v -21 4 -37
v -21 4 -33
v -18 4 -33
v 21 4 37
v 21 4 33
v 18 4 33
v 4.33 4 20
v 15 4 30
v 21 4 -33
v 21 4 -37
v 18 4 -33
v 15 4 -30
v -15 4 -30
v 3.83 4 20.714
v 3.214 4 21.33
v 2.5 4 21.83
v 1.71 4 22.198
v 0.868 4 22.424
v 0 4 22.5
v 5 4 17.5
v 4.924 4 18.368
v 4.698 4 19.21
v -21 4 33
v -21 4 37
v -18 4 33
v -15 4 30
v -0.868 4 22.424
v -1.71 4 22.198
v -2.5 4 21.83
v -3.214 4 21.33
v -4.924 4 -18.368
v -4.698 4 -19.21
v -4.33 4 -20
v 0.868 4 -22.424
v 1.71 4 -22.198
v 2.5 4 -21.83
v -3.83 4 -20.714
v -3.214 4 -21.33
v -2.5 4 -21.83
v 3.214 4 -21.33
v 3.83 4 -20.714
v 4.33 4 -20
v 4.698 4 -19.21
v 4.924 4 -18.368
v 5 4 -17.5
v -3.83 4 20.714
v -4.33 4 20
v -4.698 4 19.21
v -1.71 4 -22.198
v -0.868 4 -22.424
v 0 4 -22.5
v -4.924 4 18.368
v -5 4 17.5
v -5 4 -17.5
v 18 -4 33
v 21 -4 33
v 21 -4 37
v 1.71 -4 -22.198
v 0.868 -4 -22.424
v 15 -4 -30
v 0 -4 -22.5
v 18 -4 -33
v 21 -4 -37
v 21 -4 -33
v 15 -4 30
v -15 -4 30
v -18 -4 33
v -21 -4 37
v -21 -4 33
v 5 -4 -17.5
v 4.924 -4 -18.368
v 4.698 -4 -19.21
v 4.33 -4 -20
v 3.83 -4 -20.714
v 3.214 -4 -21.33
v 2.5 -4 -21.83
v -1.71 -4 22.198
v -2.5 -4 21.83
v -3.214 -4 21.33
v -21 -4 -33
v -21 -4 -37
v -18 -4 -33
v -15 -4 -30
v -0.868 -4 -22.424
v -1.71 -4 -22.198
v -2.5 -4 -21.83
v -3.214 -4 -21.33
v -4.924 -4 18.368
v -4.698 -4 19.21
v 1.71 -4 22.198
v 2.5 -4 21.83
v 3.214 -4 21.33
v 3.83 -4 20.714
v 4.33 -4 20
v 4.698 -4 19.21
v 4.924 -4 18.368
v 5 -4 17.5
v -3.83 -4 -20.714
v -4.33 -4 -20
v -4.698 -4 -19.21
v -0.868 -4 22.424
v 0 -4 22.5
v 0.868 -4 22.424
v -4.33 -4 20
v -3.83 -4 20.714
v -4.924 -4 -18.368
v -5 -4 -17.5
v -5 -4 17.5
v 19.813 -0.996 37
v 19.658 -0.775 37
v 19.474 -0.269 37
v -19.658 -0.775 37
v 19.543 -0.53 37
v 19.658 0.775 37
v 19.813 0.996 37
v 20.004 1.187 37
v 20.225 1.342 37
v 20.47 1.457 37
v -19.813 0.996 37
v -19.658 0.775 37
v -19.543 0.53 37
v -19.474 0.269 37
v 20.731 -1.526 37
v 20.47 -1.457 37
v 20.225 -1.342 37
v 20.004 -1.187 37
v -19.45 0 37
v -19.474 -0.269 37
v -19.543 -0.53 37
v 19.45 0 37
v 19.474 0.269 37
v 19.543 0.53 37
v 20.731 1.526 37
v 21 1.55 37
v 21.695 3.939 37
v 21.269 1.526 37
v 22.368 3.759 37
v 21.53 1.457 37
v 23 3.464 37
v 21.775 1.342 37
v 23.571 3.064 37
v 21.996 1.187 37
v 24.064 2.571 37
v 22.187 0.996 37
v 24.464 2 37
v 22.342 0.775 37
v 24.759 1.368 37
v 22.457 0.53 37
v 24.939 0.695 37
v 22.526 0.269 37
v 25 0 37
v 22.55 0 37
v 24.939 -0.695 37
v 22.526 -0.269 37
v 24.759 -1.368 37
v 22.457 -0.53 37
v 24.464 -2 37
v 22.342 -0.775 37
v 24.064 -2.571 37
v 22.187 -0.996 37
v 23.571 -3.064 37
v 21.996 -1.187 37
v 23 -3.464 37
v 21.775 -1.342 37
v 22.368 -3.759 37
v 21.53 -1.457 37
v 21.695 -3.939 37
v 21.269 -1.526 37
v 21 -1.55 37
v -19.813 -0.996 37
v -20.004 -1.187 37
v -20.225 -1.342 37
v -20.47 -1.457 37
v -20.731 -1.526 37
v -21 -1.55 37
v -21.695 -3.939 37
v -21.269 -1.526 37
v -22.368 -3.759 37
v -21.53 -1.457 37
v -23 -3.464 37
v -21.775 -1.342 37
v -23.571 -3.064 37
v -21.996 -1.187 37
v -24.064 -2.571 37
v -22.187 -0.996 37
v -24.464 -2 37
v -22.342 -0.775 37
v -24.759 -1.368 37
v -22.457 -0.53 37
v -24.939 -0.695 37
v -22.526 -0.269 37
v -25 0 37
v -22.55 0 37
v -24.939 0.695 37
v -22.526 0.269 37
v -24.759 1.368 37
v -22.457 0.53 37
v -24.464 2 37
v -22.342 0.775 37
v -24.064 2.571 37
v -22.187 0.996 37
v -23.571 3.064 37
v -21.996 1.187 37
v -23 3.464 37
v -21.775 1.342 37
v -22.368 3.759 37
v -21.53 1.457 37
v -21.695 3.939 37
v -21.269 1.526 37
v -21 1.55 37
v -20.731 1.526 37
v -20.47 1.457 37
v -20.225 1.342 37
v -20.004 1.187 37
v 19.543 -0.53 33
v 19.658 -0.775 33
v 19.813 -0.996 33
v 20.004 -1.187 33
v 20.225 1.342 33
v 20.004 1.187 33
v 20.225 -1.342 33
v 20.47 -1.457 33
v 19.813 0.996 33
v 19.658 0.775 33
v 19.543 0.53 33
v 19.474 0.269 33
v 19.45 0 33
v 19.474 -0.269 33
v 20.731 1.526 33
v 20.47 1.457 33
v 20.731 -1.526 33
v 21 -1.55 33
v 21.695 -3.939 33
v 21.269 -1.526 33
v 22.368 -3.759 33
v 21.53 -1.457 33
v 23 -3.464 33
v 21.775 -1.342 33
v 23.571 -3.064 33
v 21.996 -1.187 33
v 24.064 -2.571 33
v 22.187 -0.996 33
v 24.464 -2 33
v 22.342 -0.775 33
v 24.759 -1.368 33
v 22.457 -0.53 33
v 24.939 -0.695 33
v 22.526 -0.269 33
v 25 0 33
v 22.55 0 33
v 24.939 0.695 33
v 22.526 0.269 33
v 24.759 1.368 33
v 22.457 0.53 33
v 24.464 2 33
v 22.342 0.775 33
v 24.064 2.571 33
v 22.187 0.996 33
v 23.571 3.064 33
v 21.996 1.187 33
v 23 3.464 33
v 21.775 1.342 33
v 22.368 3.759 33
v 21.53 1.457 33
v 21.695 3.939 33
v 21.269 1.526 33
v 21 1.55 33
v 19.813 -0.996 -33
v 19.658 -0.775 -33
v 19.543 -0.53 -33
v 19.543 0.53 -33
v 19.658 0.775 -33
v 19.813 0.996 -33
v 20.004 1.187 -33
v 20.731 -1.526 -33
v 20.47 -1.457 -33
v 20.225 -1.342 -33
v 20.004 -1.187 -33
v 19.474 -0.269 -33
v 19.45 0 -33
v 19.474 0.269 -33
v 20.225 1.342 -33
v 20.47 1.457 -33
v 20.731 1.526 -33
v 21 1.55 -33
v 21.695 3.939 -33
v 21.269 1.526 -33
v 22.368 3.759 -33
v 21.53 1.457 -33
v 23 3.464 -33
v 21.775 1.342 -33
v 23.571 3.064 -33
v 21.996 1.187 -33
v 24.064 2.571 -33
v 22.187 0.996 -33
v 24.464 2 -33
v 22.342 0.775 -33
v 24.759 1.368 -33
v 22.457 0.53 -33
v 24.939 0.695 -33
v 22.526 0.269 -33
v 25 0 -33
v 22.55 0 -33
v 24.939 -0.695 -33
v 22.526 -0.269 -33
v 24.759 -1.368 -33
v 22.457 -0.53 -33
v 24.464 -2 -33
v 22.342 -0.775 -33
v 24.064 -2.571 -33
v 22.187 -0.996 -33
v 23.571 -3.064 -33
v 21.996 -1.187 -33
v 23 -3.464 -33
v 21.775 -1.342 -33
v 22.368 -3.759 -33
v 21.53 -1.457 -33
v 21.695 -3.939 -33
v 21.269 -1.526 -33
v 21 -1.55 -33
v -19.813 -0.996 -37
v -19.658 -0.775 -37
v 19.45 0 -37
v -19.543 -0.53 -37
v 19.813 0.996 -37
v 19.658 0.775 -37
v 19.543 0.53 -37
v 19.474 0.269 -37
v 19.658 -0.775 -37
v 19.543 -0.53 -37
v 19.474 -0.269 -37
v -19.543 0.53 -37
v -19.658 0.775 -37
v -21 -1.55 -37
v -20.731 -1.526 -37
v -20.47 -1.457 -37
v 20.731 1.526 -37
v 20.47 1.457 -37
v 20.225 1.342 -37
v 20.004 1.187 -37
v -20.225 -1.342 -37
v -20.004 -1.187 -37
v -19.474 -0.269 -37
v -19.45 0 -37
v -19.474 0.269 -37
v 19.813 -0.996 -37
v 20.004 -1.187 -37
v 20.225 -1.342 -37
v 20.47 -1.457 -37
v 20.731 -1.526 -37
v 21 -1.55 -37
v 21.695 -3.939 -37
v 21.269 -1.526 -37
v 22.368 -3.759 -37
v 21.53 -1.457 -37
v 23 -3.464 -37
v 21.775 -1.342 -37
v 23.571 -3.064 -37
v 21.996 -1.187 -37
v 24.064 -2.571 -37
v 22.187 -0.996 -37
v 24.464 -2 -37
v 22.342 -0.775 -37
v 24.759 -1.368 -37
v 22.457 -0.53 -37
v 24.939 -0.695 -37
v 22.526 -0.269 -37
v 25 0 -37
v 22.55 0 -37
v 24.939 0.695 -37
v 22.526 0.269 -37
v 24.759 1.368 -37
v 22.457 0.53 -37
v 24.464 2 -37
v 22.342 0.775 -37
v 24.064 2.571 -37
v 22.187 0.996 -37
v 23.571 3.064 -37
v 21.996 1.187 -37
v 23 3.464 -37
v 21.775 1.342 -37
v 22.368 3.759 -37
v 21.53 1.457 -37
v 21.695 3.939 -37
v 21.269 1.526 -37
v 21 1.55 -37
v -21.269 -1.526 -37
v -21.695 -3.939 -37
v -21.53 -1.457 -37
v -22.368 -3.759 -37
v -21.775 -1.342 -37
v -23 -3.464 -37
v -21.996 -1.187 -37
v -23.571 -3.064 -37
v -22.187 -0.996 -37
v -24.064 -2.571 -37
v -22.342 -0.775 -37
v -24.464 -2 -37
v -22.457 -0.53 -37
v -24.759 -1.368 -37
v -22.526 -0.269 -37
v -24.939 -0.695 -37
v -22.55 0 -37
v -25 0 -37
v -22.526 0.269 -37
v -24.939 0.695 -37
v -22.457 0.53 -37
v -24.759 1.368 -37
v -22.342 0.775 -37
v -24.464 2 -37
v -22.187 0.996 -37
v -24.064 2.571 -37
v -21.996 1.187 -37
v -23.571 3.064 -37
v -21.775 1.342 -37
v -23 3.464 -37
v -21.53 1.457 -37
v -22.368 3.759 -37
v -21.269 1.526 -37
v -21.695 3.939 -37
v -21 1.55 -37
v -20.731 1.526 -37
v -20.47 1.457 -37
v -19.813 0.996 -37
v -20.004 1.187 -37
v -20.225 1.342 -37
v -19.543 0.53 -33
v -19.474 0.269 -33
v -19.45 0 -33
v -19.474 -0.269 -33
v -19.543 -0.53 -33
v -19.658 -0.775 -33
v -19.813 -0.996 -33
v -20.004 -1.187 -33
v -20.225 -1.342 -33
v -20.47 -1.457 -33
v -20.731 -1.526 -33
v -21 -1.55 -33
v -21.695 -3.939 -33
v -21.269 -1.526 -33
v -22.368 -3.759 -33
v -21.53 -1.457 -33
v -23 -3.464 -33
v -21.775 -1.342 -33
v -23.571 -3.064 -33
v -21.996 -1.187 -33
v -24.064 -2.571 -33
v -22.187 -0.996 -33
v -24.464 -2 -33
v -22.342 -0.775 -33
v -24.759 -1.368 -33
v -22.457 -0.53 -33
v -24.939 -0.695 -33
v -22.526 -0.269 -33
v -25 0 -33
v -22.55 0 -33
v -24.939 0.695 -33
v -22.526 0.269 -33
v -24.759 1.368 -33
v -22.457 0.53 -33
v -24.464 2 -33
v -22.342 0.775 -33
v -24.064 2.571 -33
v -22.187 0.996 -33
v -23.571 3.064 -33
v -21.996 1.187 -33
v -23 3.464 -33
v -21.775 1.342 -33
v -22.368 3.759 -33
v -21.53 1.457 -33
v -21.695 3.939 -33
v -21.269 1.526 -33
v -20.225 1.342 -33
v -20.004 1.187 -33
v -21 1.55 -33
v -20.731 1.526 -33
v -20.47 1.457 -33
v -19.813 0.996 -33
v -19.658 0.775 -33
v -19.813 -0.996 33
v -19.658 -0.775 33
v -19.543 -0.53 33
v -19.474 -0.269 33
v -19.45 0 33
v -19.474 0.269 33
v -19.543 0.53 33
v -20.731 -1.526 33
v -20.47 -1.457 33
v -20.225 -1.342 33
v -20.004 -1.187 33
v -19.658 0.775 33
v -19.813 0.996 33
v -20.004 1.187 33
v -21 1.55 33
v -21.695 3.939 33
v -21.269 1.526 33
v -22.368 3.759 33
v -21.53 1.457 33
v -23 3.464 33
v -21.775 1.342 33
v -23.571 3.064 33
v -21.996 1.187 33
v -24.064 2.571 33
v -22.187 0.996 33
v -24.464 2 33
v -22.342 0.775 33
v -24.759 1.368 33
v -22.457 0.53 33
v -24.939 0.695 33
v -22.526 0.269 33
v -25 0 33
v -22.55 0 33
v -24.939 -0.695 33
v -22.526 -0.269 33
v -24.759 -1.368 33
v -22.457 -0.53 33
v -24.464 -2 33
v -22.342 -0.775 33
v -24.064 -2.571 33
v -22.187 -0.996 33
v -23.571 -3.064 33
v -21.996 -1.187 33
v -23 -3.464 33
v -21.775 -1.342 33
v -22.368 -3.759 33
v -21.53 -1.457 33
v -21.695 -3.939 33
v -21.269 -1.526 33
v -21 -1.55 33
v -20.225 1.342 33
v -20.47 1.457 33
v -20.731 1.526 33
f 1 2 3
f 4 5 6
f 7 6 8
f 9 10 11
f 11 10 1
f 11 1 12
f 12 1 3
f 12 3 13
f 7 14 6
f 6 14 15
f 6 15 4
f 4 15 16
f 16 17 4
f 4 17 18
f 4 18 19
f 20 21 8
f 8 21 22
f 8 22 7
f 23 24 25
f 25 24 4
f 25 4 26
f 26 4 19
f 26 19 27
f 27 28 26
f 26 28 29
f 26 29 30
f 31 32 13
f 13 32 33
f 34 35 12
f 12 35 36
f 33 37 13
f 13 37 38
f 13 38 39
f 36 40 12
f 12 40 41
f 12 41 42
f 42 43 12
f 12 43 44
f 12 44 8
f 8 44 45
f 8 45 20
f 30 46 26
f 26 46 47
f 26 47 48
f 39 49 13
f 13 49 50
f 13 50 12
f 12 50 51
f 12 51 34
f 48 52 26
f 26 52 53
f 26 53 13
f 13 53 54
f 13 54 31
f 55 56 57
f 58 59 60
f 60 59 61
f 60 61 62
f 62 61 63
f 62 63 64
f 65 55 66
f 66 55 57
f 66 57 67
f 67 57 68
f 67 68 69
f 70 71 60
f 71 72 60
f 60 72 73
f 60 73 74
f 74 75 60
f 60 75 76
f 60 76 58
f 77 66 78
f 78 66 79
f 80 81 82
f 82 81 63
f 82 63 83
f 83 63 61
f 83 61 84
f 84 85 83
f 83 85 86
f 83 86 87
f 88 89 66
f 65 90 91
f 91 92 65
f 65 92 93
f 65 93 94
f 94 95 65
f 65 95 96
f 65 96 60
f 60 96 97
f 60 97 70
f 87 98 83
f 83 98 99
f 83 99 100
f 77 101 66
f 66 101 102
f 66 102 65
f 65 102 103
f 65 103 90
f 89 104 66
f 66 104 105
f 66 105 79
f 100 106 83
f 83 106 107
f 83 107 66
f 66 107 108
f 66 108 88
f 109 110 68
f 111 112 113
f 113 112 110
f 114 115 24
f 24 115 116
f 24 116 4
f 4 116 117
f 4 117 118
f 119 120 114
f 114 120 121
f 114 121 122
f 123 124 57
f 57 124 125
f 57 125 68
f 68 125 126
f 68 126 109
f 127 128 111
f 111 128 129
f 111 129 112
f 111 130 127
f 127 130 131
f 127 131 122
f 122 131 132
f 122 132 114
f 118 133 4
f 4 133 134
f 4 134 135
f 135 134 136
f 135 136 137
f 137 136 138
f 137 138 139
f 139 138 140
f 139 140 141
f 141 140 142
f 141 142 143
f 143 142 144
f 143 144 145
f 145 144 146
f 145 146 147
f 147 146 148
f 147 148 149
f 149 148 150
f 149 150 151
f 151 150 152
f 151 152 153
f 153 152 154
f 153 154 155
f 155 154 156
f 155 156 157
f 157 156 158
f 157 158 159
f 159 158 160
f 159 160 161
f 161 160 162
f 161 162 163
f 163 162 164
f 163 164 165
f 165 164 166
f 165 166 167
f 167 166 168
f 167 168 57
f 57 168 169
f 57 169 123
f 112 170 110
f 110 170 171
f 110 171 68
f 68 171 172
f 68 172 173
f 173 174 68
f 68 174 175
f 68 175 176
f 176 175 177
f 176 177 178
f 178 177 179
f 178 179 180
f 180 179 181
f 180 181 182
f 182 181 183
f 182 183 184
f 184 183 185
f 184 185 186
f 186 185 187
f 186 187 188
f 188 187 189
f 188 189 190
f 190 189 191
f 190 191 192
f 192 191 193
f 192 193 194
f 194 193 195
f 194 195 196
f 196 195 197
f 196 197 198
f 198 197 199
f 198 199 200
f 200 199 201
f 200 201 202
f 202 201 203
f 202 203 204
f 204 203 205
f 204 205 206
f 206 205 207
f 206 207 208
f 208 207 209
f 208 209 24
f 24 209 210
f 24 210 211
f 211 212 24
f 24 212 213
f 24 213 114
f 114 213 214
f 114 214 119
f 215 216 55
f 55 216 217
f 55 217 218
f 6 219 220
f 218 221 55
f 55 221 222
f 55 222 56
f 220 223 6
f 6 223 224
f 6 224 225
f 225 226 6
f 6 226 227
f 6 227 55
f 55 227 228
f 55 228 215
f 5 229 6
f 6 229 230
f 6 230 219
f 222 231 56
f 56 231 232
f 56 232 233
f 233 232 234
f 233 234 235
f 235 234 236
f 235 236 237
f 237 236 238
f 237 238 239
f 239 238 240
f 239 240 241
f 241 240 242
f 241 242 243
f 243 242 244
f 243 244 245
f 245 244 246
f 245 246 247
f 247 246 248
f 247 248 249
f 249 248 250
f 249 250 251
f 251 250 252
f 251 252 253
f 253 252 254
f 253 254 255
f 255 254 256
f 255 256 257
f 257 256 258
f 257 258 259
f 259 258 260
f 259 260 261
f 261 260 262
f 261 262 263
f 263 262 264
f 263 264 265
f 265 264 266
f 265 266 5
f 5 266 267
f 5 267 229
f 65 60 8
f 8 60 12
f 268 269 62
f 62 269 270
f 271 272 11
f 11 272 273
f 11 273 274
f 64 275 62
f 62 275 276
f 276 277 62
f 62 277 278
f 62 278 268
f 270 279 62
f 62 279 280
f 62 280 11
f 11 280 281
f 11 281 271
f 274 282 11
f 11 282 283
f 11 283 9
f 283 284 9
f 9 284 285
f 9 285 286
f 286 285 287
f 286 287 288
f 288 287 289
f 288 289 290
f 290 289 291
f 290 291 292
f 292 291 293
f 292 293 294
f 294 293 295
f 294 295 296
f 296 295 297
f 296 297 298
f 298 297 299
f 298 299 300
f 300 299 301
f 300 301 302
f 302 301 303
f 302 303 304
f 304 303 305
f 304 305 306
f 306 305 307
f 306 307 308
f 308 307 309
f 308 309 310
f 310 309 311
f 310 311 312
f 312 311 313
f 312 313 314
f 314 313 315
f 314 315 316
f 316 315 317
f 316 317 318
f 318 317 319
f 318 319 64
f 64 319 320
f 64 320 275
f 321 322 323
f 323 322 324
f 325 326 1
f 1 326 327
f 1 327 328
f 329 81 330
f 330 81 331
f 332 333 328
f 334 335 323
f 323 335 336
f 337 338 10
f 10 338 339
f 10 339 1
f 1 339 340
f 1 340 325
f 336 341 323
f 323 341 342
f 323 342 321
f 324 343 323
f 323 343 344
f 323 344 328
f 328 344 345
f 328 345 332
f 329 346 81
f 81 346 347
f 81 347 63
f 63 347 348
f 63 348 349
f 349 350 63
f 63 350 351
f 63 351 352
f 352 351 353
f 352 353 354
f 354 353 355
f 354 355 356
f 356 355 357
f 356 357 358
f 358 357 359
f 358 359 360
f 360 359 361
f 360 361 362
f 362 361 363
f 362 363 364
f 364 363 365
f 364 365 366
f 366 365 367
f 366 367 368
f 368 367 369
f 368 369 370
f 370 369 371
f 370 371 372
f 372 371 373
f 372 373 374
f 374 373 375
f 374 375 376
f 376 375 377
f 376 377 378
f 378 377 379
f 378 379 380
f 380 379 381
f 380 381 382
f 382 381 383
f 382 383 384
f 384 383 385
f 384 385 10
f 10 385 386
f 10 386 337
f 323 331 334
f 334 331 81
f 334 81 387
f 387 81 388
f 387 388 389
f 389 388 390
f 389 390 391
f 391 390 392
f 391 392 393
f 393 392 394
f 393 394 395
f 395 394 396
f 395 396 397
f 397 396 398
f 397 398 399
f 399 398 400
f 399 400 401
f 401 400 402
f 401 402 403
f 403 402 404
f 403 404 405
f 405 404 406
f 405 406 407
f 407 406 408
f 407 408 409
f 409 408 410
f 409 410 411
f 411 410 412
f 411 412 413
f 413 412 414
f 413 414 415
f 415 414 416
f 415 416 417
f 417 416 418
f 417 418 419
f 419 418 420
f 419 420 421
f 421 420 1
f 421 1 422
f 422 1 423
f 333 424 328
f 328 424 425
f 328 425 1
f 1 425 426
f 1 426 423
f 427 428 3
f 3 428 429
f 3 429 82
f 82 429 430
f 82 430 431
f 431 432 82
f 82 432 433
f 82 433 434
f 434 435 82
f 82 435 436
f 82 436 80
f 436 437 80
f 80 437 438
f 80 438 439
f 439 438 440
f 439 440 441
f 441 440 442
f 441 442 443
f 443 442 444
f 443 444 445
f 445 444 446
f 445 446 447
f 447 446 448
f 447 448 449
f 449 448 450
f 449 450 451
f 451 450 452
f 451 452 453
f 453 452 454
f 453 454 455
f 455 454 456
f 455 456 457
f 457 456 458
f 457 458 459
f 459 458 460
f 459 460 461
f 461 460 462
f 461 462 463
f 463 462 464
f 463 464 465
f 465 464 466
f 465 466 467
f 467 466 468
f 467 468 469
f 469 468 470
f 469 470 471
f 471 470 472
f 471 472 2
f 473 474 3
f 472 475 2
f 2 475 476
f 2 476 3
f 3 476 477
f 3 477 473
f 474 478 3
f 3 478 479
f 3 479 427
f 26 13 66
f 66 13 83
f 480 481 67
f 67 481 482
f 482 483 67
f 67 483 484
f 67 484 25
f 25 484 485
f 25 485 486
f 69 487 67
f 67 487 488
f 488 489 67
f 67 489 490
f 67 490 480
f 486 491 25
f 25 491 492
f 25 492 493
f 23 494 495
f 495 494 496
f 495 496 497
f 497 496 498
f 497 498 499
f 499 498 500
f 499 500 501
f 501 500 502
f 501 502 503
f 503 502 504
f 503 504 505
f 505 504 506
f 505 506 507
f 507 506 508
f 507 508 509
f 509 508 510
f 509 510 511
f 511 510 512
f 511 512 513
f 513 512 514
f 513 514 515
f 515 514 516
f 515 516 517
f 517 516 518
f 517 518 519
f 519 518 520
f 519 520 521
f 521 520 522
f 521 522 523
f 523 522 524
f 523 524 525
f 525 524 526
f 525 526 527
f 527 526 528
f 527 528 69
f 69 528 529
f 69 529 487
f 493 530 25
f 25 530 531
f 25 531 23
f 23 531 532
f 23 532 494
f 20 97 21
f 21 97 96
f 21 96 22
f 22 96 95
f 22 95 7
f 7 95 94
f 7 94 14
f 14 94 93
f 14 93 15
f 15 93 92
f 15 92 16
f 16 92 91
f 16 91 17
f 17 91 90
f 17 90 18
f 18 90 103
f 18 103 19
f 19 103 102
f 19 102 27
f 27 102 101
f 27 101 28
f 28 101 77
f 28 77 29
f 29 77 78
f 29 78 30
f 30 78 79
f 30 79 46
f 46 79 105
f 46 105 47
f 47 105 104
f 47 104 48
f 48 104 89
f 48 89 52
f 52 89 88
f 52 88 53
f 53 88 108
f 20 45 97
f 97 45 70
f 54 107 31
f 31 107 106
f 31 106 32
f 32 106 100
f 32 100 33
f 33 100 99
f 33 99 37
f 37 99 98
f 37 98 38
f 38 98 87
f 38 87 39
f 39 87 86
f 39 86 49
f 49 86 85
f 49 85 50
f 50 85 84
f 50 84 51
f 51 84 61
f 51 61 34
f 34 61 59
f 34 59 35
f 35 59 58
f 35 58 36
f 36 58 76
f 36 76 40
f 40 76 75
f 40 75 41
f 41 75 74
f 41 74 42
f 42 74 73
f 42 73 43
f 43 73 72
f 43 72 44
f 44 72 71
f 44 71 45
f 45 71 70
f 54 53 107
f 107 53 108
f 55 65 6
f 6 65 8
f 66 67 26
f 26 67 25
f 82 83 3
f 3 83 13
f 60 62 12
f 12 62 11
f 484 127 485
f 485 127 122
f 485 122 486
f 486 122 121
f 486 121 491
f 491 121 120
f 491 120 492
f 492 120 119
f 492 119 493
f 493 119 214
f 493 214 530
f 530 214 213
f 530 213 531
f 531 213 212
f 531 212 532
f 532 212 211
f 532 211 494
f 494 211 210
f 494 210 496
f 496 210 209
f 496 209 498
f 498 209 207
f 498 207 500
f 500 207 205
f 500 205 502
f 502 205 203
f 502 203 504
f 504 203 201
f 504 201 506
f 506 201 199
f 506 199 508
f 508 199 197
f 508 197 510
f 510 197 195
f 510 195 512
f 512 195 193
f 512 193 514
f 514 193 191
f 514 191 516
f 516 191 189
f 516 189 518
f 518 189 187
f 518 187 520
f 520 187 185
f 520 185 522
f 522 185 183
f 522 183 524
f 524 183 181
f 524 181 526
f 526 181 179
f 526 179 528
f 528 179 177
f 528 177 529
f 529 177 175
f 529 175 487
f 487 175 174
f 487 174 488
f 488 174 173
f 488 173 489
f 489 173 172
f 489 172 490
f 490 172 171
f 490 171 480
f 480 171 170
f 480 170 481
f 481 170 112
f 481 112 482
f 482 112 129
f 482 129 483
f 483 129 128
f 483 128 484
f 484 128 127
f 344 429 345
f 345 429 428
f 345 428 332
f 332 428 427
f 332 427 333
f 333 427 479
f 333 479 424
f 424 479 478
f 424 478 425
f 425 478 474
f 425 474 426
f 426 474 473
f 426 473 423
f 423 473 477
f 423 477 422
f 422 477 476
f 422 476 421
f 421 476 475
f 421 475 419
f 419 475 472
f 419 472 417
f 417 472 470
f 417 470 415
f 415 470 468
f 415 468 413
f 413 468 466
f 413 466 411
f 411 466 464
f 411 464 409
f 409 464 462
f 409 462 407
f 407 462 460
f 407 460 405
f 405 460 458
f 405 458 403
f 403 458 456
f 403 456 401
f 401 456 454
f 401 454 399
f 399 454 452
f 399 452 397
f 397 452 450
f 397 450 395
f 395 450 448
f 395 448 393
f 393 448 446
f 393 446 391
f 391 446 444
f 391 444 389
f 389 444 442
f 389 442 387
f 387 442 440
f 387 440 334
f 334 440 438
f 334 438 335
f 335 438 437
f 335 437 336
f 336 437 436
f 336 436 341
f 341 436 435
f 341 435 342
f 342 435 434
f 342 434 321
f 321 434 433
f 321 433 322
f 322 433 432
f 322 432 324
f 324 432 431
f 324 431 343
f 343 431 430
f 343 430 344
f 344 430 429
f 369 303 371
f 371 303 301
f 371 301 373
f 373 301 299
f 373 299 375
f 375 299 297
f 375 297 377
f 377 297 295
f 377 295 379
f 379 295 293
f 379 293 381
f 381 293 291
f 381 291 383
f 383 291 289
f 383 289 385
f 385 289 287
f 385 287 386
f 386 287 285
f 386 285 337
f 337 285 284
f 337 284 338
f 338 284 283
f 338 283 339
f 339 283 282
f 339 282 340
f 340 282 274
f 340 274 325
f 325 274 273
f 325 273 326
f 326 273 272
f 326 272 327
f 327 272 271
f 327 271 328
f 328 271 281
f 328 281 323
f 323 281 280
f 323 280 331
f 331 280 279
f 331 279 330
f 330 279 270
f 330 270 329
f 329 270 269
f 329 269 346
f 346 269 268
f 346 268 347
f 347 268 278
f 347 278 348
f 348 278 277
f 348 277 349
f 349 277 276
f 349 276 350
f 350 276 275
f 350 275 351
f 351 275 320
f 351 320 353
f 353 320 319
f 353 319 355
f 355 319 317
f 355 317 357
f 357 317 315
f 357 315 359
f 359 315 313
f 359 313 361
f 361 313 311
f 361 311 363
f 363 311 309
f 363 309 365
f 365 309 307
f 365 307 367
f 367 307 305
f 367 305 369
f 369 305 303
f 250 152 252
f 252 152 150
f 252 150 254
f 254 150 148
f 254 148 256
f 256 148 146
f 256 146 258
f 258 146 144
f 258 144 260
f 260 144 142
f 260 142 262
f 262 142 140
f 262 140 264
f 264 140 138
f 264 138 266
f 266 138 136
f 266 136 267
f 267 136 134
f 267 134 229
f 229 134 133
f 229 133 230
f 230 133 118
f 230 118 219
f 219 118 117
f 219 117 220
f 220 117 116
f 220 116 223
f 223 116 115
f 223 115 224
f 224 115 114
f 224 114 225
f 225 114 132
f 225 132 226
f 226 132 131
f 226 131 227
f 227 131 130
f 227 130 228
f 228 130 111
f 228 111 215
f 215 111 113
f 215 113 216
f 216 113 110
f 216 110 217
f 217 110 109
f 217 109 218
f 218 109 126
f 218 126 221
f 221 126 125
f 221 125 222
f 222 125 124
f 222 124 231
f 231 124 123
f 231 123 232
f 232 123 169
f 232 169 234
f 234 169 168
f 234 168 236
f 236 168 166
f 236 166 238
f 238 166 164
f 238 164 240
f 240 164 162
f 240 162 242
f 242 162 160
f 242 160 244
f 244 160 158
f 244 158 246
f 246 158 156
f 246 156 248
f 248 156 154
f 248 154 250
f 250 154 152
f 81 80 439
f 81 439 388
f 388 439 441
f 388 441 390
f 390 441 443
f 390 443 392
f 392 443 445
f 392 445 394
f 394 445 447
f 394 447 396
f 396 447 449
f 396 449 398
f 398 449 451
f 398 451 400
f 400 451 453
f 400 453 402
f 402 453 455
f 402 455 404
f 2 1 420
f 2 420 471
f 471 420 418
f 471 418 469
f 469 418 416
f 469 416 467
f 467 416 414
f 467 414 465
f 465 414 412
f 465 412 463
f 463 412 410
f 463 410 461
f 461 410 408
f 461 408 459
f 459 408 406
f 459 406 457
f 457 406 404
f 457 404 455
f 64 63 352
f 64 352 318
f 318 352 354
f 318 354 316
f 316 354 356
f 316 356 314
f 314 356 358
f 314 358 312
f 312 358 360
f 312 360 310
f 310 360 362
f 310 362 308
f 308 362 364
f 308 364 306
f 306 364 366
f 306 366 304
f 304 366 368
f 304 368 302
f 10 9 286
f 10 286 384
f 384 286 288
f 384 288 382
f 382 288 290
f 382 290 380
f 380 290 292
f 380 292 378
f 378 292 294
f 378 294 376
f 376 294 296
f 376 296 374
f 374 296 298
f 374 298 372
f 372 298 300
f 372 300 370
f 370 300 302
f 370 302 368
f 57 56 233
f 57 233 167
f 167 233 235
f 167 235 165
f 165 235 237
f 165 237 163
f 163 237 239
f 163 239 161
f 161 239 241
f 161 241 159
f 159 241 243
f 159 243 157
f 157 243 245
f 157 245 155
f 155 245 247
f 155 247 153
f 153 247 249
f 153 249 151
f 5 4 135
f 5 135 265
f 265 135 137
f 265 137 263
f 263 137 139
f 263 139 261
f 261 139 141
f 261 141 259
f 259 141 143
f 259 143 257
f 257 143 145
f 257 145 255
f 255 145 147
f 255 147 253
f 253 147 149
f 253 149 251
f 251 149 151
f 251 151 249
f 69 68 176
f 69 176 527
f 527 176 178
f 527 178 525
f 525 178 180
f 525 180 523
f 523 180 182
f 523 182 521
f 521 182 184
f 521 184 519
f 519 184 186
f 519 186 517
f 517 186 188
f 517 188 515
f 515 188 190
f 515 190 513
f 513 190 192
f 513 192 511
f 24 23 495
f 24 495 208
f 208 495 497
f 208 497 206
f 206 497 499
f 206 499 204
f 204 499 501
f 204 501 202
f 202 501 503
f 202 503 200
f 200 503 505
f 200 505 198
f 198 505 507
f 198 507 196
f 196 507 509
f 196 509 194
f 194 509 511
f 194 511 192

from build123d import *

# Parameters (mm, degrees)
BOSS_EXTRUDE1_DEPTH     = 4
CHAMFER1_SIZE           = 3
CUT_EXTRUDE1_DEPTH      = 45.833023543
CUT_EXTRUDE1_DEPTH_BACK = 45.833023543
SKETCH3_R               = 1.55
FILLET1_R               = 4


with BuildPart() as part:
    # Sketch1 → Boss-Extrude1 (new, symmetric)
    with BuildSketch(Plane(origin=(0, 0, 0), x_dir=(1, 0, 0), z_dir=(0, 1, 0))):
        Polygon((-25, 37), (25, 37), (25, 33), (15, 33), (15, -33), (25, -33), (25, -37), (-25, -37), (-25, -33), (-15, -33), (-15, 33), (-25, 33), align=None)
        with BuildLine():
            Line((-5, -17.5), (-5, 17.5))
            ThreePointArc((-5, 17.5), (0, 22.5), (5, 17.5))
            Line((5, 17.5), (5, -17.5))
            ThreePointArc((5, -17.5), (0, -22.5), (-5, -17.5))
        make_face(mode=Mode.SUBTRACT)
    extrude(amount=BOSS_EXTRUDE1_DEPTH, both=True)

    # Chamfer1
    chamfer1_edges = [part.edges().sort_by_distance(p)[0] for p in [
        (-15, 0, 33),
        (-15, 0, -33),
        (15, 0, -33),
        (15, 0, 33),
    ]]
    chamfer(chamfer1_edges, length=CHAMFER1_SIZE)

    # Sketch3 → Cut-Extrude1 (cut, two sides: drawn at the far end of the back side and taken through both)
    with BuildSketch(Plane.XY.offset(-CUT_EXTRUDE1_DEPTH_BACK)):
        with Locations((-21, 0)):
            Circle(SKETCH3_R)
        with Locations(Location((21, 0, 0), (0, 0, 180))):
            Circle(SKETCH3_R)
    extrude(amount=CUT_EXTRUDE1_DEPTH + CUT_EXTRUDE1_DEPTH_BACK, mode=Mode.SUBTRACT)

    # Fillet1
    fillet1_edges = [part.edges().sort_by_distance(p)[0] for p in [
        (25, -4, 35),
        (-25, -4, 35),
        (-25, 4, 35),
        (25, 4, 35),
        (25, -4, -35),
        (25, 4, -35),
        (-25, -4, -35),
        (-25, 4, -35),
    ]]
    fillet(fillet1_edges, radius=FILLET1_R - 0.0001)  # a hair under: the kernel refuses the full size


solid = part.part
